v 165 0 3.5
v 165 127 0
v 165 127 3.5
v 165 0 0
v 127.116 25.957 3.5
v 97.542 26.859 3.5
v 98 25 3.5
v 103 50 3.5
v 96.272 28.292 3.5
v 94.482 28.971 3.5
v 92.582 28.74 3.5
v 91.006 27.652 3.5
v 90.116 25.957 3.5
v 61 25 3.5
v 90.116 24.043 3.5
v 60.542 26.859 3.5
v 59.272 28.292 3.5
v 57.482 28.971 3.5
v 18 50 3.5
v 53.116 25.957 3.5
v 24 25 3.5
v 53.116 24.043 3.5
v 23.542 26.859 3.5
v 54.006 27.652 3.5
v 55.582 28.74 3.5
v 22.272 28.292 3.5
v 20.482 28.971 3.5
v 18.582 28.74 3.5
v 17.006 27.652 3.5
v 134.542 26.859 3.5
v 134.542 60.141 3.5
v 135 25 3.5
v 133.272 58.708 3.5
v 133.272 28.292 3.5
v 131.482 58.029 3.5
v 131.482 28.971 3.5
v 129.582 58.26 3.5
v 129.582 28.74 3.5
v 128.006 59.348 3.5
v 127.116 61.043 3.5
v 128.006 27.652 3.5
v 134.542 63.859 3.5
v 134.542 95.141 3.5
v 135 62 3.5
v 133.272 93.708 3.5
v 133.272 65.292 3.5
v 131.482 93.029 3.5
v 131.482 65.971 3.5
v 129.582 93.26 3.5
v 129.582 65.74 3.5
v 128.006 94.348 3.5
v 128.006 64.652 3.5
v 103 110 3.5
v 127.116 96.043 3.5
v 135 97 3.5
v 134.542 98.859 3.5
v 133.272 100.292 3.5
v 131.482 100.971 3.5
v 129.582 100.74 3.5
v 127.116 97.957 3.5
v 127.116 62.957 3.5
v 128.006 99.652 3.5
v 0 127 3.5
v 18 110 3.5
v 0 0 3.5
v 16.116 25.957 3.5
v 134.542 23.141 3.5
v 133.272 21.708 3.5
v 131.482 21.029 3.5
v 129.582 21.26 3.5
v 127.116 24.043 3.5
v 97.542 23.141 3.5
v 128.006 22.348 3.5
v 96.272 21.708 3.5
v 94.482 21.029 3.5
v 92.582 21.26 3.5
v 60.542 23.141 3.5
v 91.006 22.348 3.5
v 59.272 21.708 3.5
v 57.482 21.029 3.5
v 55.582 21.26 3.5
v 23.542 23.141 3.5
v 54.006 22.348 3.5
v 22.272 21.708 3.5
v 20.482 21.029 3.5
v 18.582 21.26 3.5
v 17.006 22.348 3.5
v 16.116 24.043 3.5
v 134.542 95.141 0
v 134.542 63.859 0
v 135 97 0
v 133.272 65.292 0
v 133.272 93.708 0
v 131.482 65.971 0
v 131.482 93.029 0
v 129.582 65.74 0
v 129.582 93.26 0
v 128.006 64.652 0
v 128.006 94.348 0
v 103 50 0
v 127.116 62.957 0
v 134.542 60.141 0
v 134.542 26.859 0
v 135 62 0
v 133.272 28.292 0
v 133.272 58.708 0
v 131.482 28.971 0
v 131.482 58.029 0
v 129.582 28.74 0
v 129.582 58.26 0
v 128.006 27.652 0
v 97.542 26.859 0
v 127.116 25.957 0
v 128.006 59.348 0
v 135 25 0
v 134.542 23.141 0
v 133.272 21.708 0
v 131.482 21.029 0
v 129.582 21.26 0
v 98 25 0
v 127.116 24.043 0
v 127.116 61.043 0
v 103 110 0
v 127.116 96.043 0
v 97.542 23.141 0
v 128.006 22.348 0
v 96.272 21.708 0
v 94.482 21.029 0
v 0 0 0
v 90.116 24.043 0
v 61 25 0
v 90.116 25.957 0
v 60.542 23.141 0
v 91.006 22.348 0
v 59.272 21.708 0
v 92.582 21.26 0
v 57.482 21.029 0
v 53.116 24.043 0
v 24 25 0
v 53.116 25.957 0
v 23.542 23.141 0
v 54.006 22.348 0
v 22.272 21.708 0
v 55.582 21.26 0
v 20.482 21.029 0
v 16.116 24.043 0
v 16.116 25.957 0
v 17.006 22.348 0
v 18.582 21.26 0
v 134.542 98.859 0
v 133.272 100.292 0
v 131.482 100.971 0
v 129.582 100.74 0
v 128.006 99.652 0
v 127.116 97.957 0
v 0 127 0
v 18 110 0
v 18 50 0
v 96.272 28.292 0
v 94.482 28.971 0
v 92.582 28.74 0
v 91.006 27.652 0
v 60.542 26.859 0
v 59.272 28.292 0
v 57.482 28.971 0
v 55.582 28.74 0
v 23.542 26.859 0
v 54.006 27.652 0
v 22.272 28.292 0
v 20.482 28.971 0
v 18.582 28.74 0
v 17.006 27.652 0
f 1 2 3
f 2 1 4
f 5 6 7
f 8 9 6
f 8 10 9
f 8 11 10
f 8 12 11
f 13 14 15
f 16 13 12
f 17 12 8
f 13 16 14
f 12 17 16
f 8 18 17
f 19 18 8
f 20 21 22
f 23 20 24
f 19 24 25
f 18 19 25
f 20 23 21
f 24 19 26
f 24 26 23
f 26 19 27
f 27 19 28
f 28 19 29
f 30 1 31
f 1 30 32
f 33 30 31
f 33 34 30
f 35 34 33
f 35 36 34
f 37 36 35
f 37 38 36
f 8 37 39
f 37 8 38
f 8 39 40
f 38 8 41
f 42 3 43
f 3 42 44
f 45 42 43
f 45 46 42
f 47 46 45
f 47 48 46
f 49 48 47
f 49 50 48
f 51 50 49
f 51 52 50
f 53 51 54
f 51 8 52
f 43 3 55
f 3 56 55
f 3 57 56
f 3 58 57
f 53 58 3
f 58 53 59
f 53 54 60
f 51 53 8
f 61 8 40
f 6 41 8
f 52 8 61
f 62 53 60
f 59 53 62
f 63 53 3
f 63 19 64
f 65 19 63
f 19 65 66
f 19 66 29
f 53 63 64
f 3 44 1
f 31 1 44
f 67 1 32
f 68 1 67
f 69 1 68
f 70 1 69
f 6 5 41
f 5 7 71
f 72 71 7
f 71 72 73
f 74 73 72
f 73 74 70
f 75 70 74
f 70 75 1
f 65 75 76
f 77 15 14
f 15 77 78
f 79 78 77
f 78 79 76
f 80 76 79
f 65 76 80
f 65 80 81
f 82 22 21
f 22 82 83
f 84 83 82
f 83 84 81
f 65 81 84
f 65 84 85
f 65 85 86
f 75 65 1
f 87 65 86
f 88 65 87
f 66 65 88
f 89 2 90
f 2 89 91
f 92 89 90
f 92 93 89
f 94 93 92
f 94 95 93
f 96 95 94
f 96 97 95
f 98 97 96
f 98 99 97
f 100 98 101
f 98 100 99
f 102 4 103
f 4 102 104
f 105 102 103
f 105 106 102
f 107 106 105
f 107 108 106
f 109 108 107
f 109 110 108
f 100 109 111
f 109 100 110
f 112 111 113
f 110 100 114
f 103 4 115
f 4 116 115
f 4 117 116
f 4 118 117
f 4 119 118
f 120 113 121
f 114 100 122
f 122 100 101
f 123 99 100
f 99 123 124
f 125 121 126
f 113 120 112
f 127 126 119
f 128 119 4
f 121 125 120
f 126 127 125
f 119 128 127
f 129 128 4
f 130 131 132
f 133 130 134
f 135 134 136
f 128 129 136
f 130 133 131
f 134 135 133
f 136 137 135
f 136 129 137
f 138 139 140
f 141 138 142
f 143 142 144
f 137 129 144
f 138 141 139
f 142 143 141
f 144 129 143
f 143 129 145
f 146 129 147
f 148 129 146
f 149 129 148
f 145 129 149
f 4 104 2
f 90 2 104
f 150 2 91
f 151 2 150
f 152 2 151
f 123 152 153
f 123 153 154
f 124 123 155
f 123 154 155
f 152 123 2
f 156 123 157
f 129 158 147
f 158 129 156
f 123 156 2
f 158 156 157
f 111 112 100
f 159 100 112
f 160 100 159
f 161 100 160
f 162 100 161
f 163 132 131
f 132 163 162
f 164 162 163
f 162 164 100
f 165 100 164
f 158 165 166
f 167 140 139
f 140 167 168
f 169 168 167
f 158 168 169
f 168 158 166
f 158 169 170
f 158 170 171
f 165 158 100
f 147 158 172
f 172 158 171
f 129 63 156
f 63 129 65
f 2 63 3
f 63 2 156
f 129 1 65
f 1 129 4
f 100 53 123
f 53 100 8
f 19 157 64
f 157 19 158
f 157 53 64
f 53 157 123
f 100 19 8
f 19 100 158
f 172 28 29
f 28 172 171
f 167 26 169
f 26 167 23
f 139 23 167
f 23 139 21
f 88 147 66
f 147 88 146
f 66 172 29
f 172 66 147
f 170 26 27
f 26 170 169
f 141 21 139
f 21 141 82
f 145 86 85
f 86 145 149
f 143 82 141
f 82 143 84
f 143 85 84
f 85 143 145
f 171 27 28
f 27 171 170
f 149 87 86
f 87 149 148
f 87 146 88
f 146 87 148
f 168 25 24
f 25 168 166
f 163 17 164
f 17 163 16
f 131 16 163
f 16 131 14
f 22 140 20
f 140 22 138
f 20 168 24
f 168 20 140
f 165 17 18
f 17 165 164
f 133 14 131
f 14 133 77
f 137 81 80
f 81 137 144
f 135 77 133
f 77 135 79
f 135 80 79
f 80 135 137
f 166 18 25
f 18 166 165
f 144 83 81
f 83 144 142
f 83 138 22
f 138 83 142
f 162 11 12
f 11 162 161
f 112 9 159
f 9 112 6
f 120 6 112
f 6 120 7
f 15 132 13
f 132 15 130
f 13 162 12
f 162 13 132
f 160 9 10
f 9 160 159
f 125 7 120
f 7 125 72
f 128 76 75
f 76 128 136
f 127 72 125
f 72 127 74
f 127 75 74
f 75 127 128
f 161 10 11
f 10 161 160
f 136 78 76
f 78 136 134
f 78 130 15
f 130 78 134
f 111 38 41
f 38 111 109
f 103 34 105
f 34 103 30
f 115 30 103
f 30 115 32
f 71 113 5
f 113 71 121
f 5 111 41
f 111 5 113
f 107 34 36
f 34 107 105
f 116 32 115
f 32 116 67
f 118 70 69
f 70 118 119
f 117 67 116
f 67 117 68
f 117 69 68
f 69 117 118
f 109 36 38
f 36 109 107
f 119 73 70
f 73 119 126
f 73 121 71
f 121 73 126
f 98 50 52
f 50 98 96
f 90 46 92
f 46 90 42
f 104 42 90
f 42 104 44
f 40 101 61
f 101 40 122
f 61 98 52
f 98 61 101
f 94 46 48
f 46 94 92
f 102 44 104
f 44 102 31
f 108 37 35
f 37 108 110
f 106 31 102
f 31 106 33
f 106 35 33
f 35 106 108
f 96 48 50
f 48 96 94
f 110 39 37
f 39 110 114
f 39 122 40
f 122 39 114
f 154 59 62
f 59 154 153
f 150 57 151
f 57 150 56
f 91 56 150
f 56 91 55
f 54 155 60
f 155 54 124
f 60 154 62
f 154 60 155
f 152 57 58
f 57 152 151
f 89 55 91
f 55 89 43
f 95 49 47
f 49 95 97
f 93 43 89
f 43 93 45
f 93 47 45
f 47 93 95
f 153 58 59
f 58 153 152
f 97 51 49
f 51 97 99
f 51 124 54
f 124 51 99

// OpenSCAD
//translate([0, 0, 25.5]) {
    //rotate([30, 0, 0]) {
    difference() {
    cube([165, 127, 3.5]);
    translate([18, 50, -1]) {
        cube([85, 60, 4]);
    }
    translate([18, 50, -1]) {
        cube([85, 60, 5]);
    }
    translate([20, 25, 0]) {
        cylinder(8, 4, 4, true);
    }
    translate([57, 25, 0]) {
        cylinder(8, 4, 4, true);
    }
    translate([94, 25, 0]) {
        cylinder(8, 4, 4, true);
    }
    translate([131, 25, 0]) {
        cylinder(8, 4, 4, true);
    }
    translate([131, 62, 0]) {
        cylinder(8, 4, 4, true);
    }
    
        translate([131, 97, 0]) {
        cylinder(8, 4, 4, true);
    }
}
//}
//}

/*
difference() {
cube([160, 108, 120]);
translate([-10, 0, 25.4]) {
    rotate([30, 0, 0]) {
        cube([200, 150, 100]);
    }
}
translate([2, 2, 2]) {
cube([156, 104, 120]);
}
translate([10, 20, -5]) {
cube([140, 80, 20]);
}
}

cube([160, 20, 10]);
*/
